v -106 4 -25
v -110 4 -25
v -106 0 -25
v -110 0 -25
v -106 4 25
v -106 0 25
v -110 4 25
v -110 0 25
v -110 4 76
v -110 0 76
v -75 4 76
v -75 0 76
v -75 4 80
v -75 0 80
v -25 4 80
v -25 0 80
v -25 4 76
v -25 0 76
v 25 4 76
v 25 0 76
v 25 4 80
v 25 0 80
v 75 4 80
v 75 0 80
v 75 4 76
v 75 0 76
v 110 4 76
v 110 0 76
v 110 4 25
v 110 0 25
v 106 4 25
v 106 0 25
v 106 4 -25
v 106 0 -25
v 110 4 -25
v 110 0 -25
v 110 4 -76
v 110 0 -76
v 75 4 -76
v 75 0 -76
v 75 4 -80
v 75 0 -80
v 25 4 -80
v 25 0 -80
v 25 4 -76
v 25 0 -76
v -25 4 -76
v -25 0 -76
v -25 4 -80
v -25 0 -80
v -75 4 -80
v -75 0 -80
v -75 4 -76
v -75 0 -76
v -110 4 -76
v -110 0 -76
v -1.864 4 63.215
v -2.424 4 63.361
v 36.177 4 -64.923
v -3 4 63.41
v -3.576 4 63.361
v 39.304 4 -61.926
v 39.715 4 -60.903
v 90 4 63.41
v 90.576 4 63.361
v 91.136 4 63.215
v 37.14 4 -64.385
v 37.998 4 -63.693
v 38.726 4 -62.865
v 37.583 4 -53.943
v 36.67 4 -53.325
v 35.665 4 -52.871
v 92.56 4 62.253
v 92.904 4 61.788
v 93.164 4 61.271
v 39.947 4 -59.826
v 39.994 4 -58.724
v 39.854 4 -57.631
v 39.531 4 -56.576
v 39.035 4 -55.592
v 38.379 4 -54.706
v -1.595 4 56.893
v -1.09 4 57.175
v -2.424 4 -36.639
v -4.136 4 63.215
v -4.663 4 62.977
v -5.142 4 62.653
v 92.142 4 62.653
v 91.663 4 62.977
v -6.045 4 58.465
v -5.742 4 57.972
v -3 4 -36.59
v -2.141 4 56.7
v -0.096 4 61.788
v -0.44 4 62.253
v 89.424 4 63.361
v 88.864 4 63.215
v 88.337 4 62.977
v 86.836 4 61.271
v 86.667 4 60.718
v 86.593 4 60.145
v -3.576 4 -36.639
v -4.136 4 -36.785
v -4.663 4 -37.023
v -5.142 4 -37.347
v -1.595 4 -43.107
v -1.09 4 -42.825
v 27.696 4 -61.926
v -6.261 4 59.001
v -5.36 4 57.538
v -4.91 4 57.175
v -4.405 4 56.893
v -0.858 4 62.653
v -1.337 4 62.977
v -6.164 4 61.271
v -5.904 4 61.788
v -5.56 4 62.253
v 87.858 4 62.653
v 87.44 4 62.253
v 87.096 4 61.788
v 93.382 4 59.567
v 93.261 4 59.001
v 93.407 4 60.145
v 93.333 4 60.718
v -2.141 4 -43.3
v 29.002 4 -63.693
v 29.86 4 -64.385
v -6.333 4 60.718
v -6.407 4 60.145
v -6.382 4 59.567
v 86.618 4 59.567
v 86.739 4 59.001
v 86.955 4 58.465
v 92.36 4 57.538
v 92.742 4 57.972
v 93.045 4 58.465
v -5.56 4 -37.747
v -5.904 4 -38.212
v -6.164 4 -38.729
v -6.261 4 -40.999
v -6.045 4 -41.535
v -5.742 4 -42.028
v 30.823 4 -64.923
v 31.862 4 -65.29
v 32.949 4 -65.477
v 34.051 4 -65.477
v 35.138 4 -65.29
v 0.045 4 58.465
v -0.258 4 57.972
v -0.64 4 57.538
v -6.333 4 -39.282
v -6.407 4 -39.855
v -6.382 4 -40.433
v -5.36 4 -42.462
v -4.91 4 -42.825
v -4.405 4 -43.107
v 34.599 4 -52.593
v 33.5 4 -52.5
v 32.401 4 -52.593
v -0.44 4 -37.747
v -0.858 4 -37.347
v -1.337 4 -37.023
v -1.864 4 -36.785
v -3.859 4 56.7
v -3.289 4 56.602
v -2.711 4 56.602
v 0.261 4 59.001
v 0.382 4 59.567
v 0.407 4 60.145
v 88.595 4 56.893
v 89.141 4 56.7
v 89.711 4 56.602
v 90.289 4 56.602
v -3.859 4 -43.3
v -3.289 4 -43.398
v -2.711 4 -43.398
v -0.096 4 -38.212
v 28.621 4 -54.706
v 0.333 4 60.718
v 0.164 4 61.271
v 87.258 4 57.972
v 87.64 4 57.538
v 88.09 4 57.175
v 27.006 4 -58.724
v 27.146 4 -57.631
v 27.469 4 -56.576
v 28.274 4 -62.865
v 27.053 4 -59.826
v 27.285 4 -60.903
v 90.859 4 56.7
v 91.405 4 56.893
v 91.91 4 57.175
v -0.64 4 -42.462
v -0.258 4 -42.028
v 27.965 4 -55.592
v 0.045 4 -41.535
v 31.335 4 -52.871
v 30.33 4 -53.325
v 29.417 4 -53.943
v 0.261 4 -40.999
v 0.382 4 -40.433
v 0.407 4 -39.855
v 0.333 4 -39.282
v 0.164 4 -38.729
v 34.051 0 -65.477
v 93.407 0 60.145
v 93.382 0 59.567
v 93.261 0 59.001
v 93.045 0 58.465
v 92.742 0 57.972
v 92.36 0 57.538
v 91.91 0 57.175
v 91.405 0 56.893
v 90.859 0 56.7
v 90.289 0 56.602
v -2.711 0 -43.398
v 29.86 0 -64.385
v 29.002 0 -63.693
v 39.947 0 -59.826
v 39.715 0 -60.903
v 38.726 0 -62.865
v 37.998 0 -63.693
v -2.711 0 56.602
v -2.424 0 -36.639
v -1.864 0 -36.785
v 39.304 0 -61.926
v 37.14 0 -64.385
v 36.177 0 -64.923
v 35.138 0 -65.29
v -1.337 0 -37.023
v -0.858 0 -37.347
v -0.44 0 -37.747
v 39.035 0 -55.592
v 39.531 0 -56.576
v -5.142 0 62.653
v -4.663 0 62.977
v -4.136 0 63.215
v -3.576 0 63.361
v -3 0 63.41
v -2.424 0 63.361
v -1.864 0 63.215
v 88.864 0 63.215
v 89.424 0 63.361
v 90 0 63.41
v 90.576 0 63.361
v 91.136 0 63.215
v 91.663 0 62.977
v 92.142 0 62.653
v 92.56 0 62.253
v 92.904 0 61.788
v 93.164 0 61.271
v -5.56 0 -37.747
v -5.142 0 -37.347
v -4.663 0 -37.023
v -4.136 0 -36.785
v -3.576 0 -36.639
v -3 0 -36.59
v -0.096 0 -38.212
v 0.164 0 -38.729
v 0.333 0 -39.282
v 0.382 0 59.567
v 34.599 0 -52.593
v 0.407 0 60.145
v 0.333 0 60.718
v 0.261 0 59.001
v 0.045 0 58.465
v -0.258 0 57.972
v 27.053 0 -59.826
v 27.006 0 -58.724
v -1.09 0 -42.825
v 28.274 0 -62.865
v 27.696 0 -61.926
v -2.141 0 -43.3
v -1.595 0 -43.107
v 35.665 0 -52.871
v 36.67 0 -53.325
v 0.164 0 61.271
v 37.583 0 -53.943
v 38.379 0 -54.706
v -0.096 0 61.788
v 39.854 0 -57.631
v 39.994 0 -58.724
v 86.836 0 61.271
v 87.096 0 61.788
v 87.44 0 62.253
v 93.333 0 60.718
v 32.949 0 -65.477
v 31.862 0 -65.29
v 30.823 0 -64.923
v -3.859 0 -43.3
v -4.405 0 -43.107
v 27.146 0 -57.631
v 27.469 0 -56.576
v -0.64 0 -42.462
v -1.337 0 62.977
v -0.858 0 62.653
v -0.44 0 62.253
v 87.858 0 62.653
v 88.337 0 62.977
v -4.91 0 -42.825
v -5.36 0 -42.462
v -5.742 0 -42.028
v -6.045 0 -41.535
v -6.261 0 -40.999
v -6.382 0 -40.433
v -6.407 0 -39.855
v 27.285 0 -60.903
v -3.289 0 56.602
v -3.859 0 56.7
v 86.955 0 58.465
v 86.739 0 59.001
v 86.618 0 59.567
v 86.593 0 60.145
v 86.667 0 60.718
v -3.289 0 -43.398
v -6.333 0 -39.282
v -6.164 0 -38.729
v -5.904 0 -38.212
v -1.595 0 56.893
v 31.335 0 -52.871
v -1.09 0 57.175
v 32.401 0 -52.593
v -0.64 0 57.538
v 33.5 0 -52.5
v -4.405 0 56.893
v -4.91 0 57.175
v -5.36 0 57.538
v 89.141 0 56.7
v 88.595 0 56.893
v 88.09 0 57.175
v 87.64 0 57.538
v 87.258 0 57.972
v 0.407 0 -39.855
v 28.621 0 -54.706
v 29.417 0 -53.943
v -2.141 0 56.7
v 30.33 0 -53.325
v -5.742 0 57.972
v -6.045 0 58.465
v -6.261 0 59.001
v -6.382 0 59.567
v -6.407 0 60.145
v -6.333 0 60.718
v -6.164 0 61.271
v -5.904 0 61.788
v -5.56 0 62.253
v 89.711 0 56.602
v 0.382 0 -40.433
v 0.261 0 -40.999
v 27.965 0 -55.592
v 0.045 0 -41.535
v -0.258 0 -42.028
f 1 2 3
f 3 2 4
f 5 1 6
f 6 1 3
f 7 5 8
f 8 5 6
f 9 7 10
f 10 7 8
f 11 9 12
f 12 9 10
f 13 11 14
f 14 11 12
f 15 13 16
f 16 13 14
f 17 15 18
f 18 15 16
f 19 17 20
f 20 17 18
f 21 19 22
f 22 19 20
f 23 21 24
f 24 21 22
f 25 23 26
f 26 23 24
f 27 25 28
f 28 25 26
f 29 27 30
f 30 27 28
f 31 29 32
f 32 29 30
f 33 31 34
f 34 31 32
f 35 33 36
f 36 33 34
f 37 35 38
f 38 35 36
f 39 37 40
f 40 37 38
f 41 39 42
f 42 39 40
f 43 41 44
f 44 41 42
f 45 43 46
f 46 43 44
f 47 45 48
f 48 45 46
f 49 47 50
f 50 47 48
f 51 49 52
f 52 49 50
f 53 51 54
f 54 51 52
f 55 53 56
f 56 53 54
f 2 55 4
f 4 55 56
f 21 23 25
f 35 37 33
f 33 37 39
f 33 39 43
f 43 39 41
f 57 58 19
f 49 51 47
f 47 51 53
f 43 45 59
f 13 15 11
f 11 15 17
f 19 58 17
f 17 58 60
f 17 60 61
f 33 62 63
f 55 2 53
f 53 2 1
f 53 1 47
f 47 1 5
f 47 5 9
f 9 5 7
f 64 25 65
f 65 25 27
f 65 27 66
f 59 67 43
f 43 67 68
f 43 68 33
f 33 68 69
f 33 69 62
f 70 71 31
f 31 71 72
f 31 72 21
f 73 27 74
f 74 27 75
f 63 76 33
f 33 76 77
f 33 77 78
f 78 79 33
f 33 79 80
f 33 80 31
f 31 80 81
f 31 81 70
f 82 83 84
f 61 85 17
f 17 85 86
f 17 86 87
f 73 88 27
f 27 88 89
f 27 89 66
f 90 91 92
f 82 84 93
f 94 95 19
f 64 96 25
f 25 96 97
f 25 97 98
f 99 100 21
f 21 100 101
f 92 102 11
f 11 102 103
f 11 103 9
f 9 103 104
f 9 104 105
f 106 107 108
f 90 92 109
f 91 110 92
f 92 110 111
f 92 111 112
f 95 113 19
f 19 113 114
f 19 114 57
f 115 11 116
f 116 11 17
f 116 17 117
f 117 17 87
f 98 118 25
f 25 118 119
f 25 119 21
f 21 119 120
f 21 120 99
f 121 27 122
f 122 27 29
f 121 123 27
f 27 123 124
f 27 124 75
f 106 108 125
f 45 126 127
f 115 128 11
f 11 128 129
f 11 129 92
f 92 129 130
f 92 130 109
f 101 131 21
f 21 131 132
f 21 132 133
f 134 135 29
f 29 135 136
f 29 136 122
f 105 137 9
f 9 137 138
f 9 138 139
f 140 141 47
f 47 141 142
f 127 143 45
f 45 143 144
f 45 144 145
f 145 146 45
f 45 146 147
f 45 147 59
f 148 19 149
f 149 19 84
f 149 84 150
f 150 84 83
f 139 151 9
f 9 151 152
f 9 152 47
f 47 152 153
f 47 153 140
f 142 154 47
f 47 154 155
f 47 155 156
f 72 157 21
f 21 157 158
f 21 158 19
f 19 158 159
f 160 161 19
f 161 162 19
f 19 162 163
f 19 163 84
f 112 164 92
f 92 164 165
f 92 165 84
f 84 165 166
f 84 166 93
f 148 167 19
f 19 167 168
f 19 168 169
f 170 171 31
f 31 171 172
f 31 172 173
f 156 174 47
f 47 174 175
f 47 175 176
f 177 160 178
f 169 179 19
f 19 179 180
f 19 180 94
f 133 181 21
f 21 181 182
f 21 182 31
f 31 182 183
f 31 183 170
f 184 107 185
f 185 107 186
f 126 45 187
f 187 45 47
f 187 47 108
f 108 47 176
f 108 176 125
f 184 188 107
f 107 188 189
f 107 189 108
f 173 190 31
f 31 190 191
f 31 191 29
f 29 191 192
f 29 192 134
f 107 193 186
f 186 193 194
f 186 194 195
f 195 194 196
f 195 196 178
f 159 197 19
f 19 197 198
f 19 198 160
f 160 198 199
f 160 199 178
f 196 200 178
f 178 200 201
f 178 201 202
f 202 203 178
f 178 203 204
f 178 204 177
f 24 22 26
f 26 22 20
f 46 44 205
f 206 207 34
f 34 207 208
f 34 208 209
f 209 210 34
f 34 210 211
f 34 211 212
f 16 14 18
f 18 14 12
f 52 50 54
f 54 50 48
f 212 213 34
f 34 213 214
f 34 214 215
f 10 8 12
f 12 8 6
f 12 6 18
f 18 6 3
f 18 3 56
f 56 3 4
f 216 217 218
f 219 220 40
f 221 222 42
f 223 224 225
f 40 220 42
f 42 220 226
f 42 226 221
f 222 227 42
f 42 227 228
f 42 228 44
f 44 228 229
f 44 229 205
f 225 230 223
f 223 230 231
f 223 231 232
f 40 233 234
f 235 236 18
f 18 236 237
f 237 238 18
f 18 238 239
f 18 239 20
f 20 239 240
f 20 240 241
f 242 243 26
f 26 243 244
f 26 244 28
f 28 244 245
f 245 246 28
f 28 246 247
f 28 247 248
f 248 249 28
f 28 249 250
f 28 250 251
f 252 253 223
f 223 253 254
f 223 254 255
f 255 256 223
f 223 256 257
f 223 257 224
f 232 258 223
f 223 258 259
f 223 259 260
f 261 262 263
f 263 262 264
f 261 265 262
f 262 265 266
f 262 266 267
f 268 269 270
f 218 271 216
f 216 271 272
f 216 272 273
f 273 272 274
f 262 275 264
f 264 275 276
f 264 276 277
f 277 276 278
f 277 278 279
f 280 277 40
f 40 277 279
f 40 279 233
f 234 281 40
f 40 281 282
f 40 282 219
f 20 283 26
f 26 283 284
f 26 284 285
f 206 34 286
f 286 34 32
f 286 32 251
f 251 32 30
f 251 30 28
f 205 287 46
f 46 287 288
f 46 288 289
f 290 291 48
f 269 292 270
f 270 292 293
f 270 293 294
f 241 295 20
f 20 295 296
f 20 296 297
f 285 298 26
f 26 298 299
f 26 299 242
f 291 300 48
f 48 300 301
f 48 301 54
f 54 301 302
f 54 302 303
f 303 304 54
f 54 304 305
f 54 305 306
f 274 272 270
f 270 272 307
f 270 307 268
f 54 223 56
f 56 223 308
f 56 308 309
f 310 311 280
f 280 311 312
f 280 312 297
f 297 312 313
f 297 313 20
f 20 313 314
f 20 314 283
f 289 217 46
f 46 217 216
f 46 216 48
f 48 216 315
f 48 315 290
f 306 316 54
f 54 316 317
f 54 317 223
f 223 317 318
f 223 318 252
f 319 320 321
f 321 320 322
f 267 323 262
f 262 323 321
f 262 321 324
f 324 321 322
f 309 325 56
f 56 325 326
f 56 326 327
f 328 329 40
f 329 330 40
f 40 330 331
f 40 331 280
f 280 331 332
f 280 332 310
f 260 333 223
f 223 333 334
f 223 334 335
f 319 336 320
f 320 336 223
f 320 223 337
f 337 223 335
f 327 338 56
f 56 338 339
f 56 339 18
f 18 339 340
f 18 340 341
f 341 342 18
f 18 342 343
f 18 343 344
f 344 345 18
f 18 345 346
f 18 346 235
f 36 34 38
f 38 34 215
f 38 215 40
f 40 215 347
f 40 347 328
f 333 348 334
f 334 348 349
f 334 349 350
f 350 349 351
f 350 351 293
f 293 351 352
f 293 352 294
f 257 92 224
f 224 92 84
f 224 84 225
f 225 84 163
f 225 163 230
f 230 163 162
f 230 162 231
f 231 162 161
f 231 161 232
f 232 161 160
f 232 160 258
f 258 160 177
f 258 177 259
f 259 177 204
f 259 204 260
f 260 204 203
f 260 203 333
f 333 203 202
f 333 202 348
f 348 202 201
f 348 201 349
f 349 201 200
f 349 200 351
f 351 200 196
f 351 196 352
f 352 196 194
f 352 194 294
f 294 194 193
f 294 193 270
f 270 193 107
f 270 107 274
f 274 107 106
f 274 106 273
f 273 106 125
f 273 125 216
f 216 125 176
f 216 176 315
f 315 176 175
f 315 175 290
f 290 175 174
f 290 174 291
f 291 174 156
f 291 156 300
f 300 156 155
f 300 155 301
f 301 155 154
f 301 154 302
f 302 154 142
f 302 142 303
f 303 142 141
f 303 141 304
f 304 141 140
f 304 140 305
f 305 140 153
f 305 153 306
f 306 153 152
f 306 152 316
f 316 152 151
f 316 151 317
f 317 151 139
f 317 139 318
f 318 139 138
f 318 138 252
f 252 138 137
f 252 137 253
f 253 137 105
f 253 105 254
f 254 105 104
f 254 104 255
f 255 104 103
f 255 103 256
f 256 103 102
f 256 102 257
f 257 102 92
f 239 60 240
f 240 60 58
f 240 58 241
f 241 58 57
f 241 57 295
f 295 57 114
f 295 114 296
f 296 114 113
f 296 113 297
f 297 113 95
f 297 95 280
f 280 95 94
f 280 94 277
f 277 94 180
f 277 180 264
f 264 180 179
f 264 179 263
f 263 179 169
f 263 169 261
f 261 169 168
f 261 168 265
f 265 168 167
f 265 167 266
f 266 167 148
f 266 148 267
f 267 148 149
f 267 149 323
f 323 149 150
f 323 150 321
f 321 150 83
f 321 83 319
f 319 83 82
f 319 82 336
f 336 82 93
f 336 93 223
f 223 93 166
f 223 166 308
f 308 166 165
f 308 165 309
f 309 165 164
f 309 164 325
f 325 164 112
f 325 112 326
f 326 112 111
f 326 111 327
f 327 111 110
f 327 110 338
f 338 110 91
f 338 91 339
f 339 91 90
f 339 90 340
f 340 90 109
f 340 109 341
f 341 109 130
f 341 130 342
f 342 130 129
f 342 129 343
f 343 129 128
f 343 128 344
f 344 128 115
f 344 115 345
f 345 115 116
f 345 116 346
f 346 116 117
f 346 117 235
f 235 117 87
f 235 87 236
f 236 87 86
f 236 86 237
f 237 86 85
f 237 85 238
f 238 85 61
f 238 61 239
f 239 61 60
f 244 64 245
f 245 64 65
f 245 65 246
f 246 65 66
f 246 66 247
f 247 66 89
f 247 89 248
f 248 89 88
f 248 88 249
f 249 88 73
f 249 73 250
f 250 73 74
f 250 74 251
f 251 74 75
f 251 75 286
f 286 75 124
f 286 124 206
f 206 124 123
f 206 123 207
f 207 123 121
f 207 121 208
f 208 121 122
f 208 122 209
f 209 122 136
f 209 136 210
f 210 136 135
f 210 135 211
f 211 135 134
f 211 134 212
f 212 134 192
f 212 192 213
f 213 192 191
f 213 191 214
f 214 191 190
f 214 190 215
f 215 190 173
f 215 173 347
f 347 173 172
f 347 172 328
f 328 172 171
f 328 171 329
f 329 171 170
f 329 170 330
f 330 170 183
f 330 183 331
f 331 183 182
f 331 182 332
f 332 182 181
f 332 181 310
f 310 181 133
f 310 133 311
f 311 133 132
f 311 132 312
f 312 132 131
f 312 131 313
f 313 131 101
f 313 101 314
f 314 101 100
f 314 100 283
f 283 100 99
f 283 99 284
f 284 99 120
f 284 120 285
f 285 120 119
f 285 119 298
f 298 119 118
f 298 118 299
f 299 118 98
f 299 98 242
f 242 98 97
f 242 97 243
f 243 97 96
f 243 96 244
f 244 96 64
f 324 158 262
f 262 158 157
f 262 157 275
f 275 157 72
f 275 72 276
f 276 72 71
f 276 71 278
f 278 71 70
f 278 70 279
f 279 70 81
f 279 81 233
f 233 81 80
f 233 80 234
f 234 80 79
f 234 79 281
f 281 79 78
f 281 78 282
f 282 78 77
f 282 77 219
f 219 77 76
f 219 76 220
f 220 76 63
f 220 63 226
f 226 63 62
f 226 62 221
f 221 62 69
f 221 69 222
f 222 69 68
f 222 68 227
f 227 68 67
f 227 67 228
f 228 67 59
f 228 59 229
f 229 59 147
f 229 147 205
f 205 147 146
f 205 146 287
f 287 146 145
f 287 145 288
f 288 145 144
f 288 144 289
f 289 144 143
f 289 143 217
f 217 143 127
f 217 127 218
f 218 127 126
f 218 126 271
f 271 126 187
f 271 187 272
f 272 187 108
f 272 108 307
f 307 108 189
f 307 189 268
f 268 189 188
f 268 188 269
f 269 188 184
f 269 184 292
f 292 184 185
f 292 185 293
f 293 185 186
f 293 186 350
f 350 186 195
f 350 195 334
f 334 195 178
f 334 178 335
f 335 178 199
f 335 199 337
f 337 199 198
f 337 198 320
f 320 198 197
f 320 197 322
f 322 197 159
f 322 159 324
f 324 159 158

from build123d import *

# Parameters (mm, degrees)
BOSS_EXTRUDE1_DEPTH = 4
SKETCH3_R           = 3.41
CUT_EXTRUDE1_DEPTH  = 137.073509545
SKETCH4_R           = 6.5
CUT_EXTRUDE2_DEPTH  = 137.073509545


with BuildPart() as part:
    # Sketch2 → Boss-Extrude1 (new body)
    with BuildSketch(Plane(origin=(0, 0, 0), x_dir=(1, 0, 0), z_dir=(0, 1, 0))):
        Polygon((-110, 76), (-110, 25), (-106, 25), (-106, -25), (-110, -25), (-110, -76), (-75, -76), (-75, -80), (-25, -80), (-25, -76), (25, -76), (25, -80), (75, -80), (75, -76), (110, -76), (110, -25), (106, -25), (106, 25), (110, 25), (110, 76), (75, 76), (75, 80), (25, 80), (25, 76), (-25, 76), (-25, 80), (-75, 80), (-75, 76), align=None)
    extrude(amount=BOSS_EXTRUDE1_DEPTH)

    # Sketch3 → Cut-Extrude1 (cut, through all)
    with BuildSketch(Plane(origin=(0, 4, 0), x_dir=(1, 0, 0), z_dir=(0, 1, 0))):
        with Locations(Location((90, -60, 0), (0, 0, 270))):
            Circle(SKETCH3_R)
        with Locations(Location((-3, -60, 0), (0, 0, 270))):
            Circle(SKETCH3_R)
        with Locations(Location((-3, 40, 0), (0, 0, 270))):
            Circle(SKETCH3_R)
    extrude(amount=-CUT_EXTRUDE1_DEPTH, mode=Mode.SUBTRACT)

    # Sketch4 → Cut-Extrude2 (cut, through all)
    with BuildSketch(Plane(origin=(0, 4, 0), x_dir=(1, 0, 0), z_dir=(0, 1, 0))):
        with Locations(Location((33.5, 59, 0), (0, 0, 270))):
            Circle(SKETCH4_R)
    extrude(amount=-CUT_EXTRUDE2_DEPTH, mode=Mode.SUBTRACT)


solid = part.part
